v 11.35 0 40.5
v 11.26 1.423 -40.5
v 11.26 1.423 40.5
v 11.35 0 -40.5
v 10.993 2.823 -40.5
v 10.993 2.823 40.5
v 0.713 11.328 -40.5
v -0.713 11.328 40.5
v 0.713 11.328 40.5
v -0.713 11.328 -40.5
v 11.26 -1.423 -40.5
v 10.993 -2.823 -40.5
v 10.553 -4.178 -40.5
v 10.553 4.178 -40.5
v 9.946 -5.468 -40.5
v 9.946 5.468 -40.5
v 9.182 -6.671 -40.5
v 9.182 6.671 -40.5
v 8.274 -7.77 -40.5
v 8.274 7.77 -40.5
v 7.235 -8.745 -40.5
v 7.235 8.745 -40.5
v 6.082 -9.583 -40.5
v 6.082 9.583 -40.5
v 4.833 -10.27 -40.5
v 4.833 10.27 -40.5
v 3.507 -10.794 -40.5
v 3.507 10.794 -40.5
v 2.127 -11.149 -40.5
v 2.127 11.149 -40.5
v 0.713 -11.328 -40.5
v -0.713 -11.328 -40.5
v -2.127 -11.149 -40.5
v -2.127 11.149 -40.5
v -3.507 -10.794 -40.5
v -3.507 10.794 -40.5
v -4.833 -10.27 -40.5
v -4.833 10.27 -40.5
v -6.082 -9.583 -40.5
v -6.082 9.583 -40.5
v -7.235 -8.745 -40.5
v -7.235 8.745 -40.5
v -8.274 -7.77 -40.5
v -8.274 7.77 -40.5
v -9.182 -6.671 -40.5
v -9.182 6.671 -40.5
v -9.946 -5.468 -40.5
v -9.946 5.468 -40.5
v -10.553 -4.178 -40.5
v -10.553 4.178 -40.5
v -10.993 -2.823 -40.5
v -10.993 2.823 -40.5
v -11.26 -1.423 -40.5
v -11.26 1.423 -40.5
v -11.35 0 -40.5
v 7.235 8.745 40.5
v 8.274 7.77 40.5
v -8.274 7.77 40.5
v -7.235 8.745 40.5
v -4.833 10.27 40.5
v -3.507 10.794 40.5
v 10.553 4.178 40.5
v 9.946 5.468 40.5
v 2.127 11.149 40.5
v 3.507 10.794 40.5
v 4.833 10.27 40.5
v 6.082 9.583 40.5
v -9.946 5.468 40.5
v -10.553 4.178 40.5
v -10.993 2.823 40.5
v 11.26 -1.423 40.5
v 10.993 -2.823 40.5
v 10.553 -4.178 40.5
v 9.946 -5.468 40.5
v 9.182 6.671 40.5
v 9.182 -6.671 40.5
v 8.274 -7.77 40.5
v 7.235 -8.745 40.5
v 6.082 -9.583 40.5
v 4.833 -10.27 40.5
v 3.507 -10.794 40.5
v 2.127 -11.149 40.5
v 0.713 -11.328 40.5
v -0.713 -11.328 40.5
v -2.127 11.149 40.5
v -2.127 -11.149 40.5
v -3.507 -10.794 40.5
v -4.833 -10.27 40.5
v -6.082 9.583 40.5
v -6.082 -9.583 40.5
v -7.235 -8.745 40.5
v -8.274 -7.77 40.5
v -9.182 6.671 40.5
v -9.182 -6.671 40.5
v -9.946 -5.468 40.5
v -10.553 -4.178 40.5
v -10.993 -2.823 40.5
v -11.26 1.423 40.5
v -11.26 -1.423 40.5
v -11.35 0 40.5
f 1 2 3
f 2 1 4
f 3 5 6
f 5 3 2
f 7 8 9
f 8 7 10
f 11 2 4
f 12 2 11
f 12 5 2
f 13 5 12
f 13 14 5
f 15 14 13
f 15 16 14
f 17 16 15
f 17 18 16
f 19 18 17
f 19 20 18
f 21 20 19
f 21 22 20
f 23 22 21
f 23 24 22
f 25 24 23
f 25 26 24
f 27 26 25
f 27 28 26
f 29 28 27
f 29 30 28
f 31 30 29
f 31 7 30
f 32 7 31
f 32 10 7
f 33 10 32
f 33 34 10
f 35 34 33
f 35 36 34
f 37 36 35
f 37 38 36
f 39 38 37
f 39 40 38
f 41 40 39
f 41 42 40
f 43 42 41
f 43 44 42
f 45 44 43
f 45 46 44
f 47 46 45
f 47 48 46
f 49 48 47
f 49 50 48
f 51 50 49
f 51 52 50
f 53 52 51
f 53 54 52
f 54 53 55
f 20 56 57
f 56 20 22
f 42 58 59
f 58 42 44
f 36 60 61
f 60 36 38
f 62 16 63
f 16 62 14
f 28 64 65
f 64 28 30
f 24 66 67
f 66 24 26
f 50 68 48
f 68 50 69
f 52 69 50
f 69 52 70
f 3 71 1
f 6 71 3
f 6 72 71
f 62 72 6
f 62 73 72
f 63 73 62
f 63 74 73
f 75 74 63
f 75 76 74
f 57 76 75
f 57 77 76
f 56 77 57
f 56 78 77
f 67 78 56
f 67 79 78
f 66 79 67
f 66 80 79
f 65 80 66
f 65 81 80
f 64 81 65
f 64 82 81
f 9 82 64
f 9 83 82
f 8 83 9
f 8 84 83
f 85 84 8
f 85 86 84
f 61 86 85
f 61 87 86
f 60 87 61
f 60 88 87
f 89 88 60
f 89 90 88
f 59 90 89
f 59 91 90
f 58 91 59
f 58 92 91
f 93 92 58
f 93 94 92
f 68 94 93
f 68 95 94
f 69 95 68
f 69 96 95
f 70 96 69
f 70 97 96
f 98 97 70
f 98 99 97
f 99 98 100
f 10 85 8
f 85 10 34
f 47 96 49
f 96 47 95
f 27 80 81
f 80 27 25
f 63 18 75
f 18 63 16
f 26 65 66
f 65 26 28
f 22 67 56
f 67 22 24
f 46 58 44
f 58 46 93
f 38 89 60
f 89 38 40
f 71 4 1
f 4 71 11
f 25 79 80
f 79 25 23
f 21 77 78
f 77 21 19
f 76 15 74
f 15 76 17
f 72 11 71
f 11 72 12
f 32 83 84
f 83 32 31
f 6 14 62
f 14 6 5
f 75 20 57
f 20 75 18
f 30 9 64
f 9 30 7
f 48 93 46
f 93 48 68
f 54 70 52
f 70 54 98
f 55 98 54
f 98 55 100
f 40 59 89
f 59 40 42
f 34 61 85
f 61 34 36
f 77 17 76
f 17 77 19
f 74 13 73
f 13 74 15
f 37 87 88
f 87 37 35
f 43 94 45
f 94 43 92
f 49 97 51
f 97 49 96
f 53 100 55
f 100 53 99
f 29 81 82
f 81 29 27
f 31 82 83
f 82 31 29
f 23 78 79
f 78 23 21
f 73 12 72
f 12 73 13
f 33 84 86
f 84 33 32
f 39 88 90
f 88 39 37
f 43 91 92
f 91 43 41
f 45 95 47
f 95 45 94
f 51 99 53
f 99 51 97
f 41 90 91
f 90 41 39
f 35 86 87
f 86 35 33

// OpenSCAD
$fn = 50;


difference() {
	union() {
		translate(v = [0, 0, -40.5000000000]) {
			cylinder(h = 81, r = 11.3500000000);
		}
	}
	union() {
		translate(v = [0, 0, -100.0000000000]) {
			cylinder(h = 200, r = 0);
		}
	}
}
